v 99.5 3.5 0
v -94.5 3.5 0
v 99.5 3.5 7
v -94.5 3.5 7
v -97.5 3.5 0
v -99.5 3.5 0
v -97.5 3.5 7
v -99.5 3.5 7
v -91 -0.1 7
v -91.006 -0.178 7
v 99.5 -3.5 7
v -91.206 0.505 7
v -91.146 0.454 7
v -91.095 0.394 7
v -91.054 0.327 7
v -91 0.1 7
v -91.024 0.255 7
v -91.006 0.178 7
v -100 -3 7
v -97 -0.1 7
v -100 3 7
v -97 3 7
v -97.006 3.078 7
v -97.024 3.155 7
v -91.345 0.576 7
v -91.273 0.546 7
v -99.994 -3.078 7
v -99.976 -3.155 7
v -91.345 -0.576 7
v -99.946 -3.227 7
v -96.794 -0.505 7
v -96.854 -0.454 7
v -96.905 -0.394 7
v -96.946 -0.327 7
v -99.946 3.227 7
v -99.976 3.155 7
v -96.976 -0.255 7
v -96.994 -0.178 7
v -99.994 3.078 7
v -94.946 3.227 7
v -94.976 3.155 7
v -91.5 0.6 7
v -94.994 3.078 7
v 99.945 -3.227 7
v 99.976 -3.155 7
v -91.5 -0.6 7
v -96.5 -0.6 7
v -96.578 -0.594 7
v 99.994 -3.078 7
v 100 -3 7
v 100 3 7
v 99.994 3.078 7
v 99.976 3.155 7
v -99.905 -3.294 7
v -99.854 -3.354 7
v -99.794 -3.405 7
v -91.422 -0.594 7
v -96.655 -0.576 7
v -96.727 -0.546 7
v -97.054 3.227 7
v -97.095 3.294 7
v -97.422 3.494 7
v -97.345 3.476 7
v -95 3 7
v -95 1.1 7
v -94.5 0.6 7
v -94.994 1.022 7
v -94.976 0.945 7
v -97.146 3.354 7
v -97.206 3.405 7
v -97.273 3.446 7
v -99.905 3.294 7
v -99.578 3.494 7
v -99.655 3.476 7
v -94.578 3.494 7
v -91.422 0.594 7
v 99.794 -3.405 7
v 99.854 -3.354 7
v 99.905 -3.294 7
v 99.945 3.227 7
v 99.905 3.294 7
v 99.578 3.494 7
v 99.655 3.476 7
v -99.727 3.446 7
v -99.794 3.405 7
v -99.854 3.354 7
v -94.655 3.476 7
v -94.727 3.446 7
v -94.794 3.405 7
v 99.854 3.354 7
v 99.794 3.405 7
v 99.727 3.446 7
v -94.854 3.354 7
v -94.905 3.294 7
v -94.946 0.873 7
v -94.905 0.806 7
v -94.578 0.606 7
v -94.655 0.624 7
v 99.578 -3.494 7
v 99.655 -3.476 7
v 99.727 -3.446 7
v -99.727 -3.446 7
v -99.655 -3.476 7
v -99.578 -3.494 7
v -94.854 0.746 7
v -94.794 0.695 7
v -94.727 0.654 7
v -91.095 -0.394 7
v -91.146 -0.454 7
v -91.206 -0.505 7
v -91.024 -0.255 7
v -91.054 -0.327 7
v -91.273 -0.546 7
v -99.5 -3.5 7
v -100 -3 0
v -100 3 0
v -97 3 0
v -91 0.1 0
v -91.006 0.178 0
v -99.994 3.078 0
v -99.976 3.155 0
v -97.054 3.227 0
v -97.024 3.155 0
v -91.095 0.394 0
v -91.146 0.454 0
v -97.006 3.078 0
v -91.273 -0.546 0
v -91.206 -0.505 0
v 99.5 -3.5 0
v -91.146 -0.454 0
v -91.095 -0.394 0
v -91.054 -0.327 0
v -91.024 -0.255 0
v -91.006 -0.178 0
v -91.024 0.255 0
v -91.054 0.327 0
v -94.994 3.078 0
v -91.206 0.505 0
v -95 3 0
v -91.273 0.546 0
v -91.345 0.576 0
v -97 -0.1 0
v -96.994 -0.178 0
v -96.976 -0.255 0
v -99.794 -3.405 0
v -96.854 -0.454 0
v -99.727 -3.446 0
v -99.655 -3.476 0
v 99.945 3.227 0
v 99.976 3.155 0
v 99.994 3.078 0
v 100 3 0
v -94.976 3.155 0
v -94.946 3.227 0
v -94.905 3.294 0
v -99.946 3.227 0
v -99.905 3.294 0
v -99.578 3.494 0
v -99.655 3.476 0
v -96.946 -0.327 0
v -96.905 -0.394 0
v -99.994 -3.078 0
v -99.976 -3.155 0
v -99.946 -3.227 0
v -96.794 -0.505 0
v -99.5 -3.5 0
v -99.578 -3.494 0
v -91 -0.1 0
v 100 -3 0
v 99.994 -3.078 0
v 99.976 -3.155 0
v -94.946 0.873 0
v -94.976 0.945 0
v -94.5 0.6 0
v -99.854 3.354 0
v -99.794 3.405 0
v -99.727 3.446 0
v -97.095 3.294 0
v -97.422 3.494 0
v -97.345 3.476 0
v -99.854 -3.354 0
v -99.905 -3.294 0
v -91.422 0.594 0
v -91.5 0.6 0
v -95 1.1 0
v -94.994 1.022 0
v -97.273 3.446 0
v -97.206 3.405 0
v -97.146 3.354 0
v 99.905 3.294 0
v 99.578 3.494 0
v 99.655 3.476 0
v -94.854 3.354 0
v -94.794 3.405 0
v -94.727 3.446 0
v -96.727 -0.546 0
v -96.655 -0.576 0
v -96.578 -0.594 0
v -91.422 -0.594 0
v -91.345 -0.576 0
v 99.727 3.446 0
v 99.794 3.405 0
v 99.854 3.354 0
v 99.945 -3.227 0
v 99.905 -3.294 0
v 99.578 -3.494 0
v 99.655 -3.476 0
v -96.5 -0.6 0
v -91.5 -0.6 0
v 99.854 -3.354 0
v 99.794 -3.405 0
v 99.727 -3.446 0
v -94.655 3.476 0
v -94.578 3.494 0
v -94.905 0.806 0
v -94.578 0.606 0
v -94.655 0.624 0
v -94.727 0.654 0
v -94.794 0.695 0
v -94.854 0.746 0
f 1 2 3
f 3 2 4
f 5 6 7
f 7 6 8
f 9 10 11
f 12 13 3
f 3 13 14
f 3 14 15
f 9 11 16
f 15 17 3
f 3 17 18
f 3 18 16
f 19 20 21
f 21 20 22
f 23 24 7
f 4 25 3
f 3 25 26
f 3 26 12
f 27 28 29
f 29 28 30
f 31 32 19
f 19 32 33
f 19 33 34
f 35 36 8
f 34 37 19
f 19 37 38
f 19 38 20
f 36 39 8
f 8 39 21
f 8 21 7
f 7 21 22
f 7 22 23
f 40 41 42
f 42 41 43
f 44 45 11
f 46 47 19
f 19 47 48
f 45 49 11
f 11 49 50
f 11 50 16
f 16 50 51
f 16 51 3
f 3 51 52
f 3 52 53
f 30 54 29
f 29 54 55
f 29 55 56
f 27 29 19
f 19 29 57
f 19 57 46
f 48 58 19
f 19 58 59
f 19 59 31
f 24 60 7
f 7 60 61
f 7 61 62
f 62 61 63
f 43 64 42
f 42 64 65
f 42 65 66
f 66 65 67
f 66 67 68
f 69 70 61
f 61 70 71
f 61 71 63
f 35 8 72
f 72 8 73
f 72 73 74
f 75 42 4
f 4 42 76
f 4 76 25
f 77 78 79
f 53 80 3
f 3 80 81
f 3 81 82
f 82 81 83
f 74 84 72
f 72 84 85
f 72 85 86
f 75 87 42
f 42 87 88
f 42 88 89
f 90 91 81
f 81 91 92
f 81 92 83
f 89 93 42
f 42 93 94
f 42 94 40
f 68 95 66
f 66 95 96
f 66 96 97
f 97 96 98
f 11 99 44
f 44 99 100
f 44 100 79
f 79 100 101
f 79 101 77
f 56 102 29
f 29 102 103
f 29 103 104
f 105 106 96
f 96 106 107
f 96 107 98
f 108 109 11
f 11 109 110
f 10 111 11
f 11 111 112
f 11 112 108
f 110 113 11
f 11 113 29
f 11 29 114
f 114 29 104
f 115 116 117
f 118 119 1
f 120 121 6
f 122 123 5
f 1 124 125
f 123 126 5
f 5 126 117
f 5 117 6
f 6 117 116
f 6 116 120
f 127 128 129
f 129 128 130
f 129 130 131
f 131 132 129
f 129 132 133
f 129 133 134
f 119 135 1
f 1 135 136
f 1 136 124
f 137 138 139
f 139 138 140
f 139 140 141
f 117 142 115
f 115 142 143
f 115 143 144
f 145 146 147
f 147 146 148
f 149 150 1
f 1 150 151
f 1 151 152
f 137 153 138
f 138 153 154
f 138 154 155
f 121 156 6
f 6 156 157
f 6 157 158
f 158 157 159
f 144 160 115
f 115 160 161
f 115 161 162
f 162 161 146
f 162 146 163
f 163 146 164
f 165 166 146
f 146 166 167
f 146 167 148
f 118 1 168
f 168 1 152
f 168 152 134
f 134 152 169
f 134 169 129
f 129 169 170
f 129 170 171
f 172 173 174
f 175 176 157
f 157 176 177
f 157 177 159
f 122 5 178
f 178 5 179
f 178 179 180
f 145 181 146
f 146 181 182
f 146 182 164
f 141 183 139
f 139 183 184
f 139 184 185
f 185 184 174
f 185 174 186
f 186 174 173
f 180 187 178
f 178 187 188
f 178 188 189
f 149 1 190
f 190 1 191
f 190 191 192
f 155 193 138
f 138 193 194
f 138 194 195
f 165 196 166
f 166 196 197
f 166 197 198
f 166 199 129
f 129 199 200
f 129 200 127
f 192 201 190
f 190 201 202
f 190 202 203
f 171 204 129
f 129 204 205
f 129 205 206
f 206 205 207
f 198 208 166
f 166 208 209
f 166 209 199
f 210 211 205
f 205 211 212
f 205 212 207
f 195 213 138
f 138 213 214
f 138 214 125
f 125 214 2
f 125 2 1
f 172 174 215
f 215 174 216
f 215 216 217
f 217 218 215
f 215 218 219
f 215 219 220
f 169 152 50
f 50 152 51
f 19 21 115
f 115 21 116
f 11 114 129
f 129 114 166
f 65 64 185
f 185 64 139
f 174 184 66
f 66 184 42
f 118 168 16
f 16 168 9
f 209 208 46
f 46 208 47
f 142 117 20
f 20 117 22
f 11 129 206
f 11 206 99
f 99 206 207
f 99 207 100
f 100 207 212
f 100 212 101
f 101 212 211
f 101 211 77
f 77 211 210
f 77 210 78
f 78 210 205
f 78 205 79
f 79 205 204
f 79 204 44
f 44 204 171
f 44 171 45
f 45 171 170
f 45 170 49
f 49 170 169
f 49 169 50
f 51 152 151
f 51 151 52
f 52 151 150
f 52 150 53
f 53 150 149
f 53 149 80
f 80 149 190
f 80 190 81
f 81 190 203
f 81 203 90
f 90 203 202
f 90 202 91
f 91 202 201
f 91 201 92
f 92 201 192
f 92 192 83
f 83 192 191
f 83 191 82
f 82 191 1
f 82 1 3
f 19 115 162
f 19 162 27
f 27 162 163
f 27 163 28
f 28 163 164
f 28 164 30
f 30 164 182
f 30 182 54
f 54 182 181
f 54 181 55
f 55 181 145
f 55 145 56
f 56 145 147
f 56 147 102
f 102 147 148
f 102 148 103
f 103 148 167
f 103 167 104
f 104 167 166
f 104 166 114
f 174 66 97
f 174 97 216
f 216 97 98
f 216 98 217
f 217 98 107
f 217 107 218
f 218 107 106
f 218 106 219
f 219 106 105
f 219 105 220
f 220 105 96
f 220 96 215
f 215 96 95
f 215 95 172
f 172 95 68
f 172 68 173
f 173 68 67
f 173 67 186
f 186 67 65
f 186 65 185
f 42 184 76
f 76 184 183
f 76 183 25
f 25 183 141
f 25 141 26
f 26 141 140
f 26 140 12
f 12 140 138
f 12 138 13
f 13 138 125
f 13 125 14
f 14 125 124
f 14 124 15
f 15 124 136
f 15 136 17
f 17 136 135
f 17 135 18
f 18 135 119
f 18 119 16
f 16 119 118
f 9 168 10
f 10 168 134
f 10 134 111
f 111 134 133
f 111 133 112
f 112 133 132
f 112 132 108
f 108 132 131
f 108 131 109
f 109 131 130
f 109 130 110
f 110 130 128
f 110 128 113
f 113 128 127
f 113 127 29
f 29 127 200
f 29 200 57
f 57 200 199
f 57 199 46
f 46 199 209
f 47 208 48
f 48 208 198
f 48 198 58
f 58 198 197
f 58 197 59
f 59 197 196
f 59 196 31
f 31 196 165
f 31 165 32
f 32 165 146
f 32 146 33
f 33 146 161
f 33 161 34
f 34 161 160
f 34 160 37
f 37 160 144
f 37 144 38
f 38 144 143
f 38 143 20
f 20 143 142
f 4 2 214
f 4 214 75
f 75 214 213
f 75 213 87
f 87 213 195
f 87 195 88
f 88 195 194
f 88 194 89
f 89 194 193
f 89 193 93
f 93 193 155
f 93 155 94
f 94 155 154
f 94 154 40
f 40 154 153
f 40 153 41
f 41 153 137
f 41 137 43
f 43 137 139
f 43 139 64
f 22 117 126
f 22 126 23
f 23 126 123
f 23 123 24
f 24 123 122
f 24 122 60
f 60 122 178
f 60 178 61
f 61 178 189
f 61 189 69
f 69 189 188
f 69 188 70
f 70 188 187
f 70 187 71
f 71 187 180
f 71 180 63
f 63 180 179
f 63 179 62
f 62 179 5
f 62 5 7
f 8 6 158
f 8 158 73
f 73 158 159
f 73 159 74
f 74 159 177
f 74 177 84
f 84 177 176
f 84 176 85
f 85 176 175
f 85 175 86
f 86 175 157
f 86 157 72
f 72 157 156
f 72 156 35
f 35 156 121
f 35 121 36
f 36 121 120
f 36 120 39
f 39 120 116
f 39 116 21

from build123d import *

# Parameters (mm, degrees)
SKETCH1_W           = 200
SKETCH1_H           = 7
BOSS_EXTRUDE1_DEPTH = 7
CUT_EXTRUDE2_DEPTH  = 101.488805347
FILLET1_R           = 0.5


with BuildPart() as part:
    # Sketch1 → Boss-Extrude1 (new body)
    with BuildSketch(Plane.XY):
        Rectangle(SKETCH1_W, SKETCH1_H)
    extrude(amount=BOSS_EXTRUDE1_DEPTH)

    # Sketch2 → Cut-Extrude2 (cut, through all)
    with BuildSketch(Plane(origin=(0, -3.5, 7), x_dir=(1, 0, 0), z_dir=(0, 0, -1))):
        Polygon((-97, -7), (-97, -2.9), (-91, -2.9), (-91, -4.1), (-95, -4.1), (-95, -7), align=None)
    extrude(amount=CUT_EXTRUDE2_DEPTH, mode=Mode.SUBTRACT)

    # Fillet1
    fillet1_edges = [part.edges().sort_by_distance(p)[0] for p in [
        (-97, 3.5, 3.5),
        (-95, 3.5, 3.5),
        (-95, 0.6, 3.5),
        (-91, 0.6, 3.5),
        (-91, -0.6, 3.5),
        (-97, -0.6, 3.5),
        (100, -3.5, 3.5),
        (-100, -3.5, 3.5),
        (-100, 3.5, 3.5),
        (100, 3.5, 3.5),
    ]]
    fillet(fillet1_edges, radius=FILLET1_R)


solid = part.part
